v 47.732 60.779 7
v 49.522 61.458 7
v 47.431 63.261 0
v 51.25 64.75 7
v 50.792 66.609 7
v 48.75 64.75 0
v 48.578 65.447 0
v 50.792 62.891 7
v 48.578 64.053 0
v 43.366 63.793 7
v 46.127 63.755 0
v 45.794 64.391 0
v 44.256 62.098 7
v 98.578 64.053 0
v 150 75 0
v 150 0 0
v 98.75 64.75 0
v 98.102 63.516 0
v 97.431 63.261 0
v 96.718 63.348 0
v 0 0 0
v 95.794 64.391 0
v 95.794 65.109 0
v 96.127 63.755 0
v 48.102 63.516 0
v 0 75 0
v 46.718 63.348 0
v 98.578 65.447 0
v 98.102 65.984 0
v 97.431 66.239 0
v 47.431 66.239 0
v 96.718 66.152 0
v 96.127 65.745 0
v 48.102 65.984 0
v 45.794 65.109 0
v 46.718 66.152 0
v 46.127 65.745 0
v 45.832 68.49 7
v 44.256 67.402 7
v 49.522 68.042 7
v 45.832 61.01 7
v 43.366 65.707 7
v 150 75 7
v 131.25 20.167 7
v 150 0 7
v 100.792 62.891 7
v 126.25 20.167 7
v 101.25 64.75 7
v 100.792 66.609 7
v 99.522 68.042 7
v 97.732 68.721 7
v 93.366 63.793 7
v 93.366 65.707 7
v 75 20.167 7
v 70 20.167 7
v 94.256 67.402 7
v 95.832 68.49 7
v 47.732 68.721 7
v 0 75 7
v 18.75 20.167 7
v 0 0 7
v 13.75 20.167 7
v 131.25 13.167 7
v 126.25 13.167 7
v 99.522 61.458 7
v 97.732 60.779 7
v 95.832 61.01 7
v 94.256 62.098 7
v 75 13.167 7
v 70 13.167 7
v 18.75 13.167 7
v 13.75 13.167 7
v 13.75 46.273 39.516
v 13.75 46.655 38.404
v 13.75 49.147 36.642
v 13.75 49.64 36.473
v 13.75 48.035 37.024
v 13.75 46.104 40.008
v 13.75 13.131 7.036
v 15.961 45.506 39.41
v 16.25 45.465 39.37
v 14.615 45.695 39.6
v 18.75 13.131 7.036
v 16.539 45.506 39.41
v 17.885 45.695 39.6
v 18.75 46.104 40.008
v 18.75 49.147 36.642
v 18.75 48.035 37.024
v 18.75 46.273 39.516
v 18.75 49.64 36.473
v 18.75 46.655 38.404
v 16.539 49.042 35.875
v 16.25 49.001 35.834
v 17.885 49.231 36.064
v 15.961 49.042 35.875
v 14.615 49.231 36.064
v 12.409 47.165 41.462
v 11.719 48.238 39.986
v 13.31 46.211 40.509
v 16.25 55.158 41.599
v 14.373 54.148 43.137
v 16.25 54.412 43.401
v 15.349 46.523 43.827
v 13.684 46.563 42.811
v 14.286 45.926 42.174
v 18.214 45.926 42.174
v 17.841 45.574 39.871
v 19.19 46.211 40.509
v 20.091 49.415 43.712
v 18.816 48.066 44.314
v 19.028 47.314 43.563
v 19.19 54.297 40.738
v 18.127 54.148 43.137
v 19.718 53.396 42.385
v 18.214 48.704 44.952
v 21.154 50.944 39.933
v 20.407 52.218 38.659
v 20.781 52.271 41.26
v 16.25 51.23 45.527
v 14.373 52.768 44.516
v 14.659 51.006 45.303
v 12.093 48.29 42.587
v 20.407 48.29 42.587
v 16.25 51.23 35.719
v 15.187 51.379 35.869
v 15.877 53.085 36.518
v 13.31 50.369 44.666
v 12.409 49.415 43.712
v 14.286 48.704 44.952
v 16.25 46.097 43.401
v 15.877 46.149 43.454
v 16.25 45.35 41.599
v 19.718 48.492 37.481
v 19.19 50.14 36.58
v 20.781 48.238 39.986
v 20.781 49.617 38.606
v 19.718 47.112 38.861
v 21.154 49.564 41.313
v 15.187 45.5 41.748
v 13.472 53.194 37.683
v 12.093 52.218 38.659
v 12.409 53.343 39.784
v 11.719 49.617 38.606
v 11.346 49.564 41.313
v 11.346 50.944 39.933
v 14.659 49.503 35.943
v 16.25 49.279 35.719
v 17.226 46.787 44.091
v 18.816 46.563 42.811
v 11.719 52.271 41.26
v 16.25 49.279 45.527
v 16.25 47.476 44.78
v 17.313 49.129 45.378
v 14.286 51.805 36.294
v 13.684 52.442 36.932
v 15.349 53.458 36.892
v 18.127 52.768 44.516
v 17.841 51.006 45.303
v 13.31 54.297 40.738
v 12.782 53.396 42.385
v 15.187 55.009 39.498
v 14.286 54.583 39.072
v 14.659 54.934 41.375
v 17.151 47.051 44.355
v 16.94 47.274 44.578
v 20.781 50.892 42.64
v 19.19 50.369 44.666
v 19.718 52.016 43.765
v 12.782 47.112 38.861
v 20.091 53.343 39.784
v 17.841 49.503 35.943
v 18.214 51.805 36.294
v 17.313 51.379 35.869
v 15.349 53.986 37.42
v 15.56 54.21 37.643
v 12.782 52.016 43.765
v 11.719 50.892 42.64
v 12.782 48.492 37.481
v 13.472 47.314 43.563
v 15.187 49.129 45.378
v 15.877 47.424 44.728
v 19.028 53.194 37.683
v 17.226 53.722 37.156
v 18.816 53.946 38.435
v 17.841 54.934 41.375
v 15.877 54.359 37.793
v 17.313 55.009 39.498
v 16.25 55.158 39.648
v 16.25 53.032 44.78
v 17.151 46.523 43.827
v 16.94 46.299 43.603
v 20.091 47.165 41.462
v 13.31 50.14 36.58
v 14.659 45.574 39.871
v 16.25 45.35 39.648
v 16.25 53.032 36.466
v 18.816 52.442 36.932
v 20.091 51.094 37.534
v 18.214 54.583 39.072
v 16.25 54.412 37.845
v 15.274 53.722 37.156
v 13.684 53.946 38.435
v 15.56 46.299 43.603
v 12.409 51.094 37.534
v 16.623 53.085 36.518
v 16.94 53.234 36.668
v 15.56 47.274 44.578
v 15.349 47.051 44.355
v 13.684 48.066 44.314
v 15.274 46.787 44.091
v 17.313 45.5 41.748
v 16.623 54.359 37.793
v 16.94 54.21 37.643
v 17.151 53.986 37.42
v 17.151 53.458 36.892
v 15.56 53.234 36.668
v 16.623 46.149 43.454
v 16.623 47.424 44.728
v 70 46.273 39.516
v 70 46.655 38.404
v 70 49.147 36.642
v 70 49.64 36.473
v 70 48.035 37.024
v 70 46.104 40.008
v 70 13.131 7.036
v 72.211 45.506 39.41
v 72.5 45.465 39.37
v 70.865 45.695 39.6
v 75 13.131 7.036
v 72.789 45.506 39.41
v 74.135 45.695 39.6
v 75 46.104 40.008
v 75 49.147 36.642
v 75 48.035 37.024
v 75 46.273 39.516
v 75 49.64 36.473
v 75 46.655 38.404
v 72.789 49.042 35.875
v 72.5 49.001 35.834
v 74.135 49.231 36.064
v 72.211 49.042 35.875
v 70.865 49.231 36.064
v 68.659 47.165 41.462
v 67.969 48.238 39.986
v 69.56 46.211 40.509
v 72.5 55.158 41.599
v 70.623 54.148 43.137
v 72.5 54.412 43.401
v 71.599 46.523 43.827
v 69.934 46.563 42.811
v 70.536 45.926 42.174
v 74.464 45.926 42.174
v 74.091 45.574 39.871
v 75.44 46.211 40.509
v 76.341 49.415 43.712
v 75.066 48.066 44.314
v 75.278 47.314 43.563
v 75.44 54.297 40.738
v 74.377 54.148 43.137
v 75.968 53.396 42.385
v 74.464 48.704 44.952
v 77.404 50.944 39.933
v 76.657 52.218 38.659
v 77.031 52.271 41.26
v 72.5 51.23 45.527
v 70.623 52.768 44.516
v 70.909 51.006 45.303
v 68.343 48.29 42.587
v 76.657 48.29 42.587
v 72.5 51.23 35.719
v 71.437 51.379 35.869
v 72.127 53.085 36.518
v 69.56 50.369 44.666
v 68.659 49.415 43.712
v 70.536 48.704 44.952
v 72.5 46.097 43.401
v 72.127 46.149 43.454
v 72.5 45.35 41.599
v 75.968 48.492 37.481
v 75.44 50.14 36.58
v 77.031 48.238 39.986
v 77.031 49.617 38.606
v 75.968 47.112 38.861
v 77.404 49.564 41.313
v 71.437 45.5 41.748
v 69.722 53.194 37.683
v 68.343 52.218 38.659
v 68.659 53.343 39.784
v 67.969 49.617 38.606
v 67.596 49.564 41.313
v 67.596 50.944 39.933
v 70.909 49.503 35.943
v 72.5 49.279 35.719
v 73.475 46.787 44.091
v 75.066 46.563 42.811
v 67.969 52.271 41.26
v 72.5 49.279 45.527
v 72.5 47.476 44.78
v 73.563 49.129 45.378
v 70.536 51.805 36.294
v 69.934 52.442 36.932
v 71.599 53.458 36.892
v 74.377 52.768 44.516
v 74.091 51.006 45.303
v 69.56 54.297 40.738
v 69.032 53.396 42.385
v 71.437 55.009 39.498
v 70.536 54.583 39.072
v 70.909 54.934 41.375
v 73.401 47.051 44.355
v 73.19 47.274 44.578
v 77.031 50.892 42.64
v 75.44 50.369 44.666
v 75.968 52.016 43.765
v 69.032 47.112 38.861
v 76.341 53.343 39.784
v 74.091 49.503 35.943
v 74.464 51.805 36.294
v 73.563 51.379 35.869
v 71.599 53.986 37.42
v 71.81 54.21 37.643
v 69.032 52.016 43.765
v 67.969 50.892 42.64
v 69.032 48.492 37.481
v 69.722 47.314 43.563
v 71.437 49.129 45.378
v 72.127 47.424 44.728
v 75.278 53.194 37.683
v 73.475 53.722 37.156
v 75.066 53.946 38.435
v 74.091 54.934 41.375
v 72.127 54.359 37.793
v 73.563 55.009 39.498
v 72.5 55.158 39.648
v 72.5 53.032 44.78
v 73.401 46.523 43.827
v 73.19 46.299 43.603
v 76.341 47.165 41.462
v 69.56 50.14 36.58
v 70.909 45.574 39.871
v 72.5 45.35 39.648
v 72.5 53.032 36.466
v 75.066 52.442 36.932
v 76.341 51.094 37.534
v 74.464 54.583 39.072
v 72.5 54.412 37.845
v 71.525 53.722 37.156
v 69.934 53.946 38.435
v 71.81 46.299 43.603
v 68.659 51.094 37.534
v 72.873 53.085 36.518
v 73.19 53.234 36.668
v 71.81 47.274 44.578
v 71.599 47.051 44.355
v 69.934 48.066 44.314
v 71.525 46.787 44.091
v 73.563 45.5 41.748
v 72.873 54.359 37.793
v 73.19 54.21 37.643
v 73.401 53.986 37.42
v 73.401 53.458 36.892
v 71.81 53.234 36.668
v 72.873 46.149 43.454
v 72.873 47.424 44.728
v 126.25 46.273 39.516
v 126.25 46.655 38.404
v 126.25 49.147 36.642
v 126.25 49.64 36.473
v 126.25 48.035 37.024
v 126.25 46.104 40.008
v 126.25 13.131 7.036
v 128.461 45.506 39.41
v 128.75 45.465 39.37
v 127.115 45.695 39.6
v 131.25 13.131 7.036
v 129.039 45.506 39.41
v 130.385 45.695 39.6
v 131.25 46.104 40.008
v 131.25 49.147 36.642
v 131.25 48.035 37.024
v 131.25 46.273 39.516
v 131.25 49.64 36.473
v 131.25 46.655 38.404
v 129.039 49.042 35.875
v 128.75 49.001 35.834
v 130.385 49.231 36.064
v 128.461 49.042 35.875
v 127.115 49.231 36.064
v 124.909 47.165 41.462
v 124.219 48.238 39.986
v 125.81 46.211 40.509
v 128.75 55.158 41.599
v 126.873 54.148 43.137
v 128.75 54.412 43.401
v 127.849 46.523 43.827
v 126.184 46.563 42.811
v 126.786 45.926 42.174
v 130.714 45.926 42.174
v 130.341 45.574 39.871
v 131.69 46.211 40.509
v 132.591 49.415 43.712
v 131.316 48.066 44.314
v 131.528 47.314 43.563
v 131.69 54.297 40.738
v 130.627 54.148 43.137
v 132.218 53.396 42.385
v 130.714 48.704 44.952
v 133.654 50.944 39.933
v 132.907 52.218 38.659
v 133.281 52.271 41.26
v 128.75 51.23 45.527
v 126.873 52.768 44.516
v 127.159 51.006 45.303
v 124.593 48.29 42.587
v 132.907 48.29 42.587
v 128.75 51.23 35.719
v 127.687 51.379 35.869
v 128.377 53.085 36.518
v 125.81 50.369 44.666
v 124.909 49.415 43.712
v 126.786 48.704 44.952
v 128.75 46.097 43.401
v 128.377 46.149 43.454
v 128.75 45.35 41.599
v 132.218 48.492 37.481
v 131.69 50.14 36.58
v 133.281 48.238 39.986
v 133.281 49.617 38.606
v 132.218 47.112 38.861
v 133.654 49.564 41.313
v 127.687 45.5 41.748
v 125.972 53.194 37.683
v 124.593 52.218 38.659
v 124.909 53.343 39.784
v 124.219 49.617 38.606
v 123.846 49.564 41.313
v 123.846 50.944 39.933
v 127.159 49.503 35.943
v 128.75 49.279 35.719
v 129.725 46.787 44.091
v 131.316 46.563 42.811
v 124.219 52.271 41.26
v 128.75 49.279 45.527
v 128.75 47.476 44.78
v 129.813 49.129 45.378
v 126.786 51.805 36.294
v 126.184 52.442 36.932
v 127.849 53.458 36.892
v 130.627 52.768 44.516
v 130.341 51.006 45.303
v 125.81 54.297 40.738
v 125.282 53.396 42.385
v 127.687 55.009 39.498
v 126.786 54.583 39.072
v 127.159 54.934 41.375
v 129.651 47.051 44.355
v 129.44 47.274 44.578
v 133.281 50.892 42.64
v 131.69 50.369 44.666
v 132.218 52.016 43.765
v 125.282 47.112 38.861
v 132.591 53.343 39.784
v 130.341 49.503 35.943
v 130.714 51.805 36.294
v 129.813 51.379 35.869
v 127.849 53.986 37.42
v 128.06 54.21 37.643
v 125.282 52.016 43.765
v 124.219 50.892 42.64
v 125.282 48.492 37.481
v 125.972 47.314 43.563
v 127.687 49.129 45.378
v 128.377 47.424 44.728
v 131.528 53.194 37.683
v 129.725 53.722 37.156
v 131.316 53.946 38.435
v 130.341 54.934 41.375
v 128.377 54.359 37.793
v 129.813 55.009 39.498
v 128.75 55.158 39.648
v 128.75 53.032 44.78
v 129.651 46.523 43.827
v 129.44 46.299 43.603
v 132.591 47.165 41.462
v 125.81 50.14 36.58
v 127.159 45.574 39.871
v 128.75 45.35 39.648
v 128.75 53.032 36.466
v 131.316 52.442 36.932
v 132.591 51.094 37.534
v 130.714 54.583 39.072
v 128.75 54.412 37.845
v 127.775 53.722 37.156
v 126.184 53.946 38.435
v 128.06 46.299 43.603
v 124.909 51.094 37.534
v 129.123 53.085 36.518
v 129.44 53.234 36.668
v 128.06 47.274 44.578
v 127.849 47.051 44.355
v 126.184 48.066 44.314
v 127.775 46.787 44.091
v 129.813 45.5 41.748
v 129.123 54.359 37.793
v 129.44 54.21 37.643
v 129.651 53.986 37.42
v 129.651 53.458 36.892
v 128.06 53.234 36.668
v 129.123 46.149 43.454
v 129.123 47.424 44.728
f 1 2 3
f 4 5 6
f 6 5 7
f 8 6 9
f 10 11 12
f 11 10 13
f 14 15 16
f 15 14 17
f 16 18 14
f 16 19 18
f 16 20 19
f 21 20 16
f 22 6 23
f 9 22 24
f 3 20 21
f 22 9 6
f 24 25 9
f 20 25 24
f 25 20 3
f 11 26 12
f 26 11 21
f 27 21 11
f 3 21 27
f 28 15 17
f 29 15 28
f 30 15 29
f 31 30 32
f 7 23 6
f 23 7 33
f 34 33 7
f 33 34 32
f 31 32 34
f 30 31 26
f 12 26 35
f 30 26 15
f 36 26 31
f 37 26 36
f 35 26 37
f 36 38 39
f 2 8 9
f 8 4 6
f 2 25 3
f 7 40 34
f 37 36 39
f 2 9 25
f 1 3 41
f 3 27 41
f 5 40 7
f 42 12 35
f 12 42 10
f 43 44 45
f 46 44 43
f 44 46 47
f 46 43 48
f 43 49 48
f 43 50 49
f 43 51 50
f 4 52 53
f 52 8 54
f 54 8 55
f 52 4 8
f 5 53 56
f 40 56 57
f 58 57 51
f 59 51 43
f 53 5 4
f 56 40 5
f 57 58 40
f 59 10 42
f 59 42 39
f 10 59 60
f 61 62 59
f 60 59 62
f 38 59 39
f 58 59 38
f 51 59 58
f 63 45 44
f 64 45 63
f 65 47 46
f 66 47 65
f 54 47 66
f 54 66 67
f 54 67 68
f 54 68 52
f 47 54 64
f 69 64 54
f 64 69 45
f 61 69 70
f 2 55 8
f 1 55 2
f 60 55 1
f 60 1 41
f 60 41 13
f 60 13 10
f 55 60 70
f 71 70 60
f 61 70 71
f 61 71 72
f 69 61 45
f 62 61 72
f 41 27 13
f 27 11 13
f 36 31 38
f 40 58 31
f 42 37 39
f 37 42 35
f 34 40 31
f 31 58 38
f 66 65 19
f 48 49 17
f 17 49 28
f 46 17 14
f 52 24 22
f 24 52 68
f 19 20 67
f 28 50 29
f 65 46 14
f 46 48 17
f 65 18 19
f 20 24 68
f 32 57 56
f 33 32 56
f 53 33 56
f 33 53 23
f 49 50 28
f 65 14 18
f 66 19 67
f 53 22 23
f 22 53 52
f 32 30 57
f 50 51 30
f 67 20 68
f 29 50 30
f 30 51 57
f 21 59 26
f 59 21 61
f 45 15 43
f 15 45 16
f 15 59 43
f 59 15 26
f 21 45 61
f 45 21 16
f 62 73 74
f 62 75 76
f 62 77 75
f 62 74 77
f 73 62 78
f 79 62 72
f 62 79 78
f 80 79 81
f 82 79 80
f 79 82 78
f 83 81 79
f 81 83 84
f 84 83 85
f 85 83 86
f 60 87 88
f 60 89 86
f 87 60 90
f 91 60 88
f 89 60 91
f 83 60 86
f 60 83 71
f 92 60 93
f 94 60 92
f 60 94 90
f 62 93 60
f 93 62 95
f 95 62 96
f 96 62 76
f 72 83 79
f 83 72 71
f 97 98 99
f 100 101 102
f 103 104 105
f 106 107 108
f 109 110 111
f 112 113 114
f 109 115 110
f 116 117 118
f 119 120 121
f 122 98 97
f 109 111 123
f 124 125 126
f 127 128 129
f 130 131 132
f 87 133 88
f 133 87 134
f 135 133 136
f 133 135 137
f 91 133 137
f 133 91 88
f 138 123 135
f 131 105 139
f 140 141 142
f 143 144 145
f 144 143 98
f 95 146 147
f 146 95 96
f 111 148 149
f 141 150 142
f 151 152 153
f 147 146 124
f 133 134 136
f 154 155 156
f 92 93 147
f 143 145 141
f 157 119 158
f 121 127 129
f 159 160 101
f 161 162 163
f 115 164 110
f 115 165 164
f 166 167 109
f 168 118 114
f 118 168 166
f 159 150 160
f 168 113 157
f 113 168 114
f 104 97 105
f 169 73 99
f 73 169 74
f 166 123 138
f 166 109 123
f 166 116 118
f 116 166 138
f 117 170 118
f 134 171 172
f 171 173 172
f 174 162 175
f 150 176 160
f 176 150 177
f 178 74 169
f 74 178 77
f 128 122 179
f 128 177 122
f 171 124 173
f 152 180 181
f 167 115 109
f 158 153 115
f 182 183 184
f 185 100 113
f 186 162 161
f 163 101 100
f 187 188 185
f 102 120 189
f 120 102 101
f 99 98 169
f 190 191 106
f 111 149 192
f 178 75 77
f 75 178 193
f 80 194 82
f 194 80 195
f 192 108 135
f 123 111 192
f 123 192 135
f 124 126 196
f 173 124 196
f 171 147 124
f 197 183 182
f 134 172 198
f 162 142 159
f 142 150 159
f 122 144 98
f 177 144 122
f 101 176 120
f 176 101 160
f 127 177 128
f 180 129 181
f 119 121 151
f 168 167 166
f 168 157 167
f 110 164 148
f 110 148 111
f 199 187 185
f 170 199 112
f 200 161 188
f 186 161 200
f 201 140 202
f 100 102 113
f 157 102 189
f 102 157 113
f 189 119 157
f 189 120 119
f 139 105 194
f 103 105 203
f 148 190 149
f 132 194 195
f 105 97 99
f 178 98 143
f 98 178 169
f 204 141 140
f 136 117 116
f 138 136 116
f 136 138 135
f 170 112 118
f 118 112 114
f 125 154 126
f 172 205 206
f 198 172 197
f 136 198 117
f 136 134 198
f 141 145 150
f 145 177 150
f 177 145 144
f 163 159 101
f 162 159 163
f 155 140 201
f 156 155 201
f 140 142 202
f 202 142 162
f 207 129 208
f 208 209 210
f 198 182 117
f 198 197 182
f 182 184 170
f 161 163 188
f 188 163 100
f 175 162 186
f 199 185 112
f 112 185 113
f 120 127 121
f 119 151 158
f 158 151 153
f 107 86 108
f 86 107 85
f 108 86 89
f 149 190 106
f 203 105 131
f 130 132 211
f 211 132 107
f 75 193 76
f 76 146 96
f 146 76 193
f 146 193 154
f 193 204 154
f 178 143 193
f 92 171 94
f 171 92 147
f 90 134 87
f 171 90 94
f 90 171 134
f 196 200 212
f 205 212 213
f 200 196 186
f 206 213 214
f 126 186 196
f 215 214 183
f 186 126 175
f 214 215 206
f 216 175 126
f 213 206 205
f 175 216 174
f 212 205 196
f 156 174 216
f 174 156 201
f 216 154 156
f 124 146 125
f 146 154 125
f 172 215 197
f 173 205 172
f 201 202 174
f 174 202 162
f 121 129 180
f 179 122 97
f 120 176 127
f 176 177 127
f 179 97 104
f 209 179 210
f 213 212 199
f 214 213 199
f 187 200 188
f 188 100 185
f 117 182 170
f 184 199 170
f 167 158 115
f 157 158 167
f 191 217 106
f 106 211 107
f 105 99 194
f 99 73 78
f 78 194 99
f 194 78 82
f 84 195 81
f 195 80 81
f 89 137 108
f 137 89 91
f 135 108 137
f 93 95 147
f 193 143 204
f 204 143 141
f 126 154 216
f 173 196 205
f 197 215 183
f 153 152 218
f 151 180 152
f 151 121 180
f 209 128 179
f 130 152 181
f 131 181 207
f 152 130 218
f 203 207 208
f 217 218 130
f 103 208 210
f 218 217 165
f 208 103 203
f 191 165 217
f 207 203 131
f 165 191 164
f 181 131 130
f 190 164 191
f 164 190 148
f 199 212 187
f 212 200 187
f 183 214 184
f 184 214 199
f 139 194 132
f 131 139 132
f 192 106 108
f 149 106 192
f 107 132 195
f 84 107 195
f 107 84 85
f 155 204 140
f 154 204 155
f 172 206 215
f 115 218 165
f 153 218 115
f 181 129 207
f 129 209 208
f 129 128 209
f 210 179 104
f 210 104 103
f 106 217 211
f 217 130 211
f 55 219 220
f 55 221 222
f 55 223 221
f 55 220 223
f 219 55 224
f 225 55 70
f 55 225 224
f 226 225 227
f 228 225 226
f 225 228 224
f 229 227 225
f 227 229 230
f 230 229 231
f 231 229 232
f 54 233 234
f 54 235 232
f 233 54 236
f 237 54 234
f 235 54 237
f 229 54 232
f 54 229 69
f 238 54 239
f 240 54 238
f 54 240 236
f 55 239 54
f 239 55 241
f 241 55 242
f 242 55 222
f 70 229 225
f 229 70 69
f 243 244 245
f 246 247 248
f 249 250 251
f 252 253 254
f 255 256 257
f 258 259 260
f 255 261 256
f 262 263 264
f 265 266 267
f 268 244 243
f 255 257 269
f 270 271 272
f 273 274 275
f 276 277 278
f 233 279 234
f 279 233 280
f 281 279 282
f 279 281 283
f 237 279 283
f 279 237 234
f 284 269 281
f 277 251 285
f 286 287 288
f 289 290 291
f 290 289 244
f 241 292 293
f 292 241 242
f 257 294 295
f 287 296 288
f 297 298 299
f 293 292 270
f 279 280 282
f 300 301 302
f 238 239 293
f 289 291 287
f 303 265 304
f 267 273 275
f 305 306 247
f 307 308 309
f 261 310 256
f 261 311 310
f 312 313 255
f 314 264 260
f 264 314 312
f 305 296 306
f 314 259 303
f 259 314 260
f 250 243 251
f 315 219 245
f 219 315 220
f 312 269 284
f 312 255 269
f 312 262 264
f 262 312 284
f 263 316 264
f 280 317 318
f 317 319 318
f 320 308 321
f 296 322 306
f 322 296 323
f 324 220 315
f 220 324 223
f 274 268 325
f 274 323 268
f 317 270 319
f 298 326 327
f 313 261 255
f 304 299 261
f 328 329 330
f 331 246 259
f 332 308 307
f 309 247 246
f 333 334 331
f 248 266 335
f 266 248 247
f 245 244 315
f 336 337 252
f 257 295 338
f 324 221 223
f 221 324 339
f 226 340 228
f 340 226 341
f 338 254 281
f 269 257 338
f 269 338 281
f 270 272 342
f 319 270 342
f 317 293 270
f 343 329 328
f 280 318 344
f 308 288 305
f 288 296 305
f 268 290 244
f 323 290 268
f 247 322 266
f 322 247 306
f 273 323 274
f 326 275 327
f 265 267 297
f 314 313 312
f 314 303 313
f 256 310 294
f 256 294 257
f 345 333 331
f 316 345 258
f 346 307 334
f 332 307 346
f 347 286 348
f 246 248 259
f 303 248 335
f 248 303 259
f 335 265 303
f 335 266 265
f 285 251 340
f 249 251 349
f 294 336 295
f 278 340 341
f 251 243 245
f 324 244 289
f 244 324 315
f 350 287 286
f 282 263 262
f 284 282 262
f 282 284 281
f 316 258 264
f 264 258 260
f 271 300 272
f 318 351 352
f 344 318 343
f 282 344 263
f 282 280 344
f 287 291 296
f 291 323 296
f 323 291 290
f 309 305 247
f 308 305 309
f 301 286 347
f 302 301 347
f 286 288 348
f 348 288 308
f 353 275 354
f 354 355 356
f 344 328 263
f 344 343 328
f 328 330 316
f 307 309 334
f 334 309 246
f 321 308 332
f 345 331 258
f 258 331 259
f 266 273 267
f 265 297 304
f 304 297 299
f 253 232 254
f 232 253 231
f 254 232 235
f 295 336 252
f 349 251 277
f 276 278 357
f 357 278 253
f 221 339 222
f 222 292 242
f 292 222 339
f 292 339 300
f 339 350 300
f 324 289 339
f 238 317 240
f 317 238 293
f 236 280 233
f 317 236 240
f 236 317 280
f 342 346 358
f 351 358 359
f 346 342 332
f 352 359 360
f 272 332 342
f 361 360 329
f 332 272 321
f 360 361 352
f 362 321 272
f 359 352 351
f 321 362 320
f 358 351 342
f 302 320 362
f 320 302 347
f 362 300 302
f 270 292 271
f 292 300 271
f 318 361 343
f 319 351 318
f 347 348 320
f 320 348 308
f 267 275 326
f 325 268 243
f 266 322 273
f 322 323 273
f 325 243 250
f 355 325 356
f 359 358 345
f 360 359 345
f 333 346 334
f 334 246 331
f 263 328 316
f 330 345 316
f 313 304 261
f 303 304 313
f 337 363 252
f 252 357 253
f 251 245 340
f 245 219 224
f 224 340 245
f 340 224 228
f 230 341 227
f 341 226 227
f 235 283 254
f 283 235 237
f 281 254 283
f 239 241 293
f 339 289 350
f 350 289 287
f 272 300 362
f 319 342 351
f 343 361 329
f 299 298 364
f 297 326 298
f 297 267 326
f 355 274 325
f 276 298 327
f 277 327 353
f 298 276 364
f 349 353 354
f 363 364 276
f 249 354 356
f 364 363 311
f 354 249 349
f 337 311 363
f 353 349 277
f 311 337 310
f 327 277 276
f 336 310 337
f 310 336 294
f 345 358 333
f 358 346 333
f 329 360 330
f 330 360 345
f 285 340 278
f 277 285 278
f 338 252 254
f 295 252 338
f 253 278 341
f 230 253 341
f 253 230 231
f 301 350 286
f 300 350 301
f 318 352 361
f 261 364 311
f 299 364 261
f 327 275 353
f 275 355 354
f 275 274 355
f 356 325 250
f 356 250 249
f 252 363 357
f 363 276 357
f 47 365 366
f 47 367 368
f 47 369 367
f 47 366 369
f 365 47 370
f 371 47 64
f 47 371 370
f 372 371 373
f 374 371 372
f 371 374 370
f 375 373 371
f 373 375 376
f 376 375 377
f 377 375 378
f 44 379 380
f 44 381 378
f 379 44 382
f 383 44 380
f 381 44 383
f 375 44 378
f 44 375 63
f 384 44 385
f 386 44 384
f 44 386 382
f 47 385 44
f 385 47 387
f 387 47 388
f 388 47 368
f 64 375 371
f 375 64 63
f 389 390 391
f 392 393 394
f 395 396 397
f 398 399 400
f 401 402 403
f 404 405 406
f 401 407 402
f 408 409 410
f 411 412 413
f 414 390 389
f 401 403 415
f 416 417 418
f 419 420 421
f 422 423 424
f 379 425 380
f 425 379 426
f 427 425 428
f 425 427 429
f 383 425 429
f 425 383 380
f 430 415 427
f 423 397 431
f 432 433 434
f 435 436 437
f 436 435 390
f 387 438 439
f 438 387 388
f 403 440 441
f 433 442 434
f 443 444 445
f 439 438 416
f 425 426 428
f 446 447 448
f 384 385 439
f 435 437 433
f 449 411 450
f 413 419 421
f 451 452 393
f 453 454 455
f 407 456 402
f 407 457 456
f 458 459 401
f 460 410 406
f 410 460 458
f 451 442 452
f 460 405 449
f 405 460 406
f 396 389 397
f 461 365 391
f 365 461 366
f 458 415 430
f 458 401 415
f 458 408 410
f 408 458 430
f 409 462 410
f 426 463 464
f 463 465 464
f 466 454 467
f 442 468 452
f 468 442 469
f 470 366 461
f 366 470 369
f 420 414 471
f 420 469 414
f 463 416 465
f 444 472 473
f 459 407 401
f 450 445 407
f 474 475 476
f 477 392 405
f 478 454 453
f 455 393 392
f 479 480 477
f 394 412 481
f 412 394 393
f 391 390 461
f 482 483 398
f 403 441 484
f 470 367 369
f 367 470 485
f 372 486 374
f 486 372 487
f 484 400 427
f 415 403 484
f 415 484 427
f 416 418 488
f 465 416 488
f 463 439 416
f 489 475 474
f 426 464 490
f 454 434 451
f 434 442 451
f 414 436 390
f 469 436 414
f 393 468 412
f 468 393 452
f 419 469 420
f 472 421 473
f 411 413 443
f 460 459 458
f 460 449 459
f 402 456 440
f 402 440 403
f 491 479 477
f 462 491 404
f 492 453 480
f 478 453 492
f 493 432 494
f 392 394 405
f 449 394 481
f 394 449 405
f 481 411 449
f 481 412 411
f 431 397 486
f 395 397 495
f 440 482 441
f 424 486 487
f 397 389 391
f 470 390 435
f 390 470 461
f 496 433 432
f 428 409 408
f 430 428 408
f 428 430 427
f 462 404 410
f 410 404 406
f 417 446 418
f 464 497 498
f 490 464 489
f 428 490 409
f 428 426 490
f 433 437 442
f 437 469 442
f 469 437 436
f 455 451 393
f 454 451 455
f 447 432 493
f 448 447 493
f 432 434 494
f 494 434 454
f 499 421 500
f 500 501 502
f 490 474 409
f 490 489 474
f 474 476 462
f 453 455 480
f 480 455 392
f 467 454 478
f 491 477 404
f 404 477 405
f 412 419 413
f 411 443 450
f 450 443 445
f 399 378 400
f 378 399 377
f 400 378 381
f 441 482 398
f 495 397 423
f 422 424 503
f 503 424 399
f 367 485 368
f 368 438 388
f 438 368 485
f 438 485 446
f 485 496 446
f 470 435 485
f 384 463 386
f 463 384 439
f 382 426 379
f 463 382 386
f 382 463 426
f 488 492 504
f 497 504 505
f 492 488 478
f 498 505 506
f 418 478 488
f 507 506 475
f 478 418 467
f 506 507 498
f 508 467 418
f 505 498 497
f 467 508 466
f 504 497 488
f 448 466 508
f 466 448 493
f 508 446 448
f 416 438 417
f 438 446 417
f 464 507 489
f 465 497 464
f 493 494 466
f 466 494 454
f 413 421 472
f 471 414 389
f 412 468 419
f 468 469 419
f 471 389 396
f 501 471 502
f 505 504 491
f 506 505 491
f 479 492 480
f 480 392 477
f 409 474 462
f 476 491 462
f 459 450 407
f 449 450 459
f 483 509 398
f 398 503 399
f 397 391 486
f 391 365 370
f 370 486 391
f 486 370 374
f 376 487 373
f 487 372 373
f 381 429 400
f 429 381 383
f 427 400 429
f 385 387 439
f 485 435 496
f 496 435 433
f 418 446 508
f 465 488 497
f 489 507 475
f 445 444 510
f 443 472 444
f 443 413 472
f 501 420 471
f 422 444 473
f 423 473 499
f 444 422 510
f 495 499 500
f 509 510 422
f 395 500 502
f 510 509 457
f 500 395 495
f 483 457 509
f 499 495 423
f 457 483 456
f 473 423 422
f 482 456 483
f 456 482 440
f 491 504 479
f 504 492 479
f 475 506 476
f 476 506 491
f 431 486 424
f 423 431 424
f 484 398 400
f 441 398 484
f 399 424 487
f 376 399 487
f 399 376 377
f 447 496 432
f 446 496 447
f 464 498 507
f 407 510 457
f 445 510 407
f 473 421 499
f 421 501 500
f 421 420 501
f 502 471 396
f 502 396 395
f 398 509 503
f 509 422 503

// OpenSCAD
bar_length=150;
bar_height=75;
bar_thick=7;
hook_count=3;
hook_angle=45;
hook_thick=5;
hook_length=50;
diam_top=8;
diam_bot=3;
diam_avg=(diam_top+diam_bot)/2;

module hook() {
    rotate([hook_angle,0,0]) {
        cube([hook_thick,hook_length,hook_thick]);
        translate([hook_thick/2,hook_length,hook_thick/2])
        sphere(d=hook_thick*2);
    }
}
module copy_translate(vec=[0,0,0]) {
    children();
    translate(vec)
        children(0);
}

// Back bar
hole_space=bar_length/hook_count;
difference() {
    cube([bar_length, bar_height, bar_thick]);
    translate([hole_space-diam_avg/2,bar_height*.9-diam_avg/2,0]) {
        for(i=[0:hook_count-2]) {
            translate([i*hole_space,0,0])
                cylinder(d1=diam_bot,d2=diam_top,h=bar_thick);
        }
    }
}

// Hooks
hook_space=bar_length/(hook_count+1);
translate([(hook_space/2)-hook_thick,bar_height/4.5,bar_thick/2]) {
    hook_space=hook_space*1.5;
    for(a=[0 : hook_space : hook_space*(hook_count-1)]) {
        translate([a,0,0]) hook();
    }
}
